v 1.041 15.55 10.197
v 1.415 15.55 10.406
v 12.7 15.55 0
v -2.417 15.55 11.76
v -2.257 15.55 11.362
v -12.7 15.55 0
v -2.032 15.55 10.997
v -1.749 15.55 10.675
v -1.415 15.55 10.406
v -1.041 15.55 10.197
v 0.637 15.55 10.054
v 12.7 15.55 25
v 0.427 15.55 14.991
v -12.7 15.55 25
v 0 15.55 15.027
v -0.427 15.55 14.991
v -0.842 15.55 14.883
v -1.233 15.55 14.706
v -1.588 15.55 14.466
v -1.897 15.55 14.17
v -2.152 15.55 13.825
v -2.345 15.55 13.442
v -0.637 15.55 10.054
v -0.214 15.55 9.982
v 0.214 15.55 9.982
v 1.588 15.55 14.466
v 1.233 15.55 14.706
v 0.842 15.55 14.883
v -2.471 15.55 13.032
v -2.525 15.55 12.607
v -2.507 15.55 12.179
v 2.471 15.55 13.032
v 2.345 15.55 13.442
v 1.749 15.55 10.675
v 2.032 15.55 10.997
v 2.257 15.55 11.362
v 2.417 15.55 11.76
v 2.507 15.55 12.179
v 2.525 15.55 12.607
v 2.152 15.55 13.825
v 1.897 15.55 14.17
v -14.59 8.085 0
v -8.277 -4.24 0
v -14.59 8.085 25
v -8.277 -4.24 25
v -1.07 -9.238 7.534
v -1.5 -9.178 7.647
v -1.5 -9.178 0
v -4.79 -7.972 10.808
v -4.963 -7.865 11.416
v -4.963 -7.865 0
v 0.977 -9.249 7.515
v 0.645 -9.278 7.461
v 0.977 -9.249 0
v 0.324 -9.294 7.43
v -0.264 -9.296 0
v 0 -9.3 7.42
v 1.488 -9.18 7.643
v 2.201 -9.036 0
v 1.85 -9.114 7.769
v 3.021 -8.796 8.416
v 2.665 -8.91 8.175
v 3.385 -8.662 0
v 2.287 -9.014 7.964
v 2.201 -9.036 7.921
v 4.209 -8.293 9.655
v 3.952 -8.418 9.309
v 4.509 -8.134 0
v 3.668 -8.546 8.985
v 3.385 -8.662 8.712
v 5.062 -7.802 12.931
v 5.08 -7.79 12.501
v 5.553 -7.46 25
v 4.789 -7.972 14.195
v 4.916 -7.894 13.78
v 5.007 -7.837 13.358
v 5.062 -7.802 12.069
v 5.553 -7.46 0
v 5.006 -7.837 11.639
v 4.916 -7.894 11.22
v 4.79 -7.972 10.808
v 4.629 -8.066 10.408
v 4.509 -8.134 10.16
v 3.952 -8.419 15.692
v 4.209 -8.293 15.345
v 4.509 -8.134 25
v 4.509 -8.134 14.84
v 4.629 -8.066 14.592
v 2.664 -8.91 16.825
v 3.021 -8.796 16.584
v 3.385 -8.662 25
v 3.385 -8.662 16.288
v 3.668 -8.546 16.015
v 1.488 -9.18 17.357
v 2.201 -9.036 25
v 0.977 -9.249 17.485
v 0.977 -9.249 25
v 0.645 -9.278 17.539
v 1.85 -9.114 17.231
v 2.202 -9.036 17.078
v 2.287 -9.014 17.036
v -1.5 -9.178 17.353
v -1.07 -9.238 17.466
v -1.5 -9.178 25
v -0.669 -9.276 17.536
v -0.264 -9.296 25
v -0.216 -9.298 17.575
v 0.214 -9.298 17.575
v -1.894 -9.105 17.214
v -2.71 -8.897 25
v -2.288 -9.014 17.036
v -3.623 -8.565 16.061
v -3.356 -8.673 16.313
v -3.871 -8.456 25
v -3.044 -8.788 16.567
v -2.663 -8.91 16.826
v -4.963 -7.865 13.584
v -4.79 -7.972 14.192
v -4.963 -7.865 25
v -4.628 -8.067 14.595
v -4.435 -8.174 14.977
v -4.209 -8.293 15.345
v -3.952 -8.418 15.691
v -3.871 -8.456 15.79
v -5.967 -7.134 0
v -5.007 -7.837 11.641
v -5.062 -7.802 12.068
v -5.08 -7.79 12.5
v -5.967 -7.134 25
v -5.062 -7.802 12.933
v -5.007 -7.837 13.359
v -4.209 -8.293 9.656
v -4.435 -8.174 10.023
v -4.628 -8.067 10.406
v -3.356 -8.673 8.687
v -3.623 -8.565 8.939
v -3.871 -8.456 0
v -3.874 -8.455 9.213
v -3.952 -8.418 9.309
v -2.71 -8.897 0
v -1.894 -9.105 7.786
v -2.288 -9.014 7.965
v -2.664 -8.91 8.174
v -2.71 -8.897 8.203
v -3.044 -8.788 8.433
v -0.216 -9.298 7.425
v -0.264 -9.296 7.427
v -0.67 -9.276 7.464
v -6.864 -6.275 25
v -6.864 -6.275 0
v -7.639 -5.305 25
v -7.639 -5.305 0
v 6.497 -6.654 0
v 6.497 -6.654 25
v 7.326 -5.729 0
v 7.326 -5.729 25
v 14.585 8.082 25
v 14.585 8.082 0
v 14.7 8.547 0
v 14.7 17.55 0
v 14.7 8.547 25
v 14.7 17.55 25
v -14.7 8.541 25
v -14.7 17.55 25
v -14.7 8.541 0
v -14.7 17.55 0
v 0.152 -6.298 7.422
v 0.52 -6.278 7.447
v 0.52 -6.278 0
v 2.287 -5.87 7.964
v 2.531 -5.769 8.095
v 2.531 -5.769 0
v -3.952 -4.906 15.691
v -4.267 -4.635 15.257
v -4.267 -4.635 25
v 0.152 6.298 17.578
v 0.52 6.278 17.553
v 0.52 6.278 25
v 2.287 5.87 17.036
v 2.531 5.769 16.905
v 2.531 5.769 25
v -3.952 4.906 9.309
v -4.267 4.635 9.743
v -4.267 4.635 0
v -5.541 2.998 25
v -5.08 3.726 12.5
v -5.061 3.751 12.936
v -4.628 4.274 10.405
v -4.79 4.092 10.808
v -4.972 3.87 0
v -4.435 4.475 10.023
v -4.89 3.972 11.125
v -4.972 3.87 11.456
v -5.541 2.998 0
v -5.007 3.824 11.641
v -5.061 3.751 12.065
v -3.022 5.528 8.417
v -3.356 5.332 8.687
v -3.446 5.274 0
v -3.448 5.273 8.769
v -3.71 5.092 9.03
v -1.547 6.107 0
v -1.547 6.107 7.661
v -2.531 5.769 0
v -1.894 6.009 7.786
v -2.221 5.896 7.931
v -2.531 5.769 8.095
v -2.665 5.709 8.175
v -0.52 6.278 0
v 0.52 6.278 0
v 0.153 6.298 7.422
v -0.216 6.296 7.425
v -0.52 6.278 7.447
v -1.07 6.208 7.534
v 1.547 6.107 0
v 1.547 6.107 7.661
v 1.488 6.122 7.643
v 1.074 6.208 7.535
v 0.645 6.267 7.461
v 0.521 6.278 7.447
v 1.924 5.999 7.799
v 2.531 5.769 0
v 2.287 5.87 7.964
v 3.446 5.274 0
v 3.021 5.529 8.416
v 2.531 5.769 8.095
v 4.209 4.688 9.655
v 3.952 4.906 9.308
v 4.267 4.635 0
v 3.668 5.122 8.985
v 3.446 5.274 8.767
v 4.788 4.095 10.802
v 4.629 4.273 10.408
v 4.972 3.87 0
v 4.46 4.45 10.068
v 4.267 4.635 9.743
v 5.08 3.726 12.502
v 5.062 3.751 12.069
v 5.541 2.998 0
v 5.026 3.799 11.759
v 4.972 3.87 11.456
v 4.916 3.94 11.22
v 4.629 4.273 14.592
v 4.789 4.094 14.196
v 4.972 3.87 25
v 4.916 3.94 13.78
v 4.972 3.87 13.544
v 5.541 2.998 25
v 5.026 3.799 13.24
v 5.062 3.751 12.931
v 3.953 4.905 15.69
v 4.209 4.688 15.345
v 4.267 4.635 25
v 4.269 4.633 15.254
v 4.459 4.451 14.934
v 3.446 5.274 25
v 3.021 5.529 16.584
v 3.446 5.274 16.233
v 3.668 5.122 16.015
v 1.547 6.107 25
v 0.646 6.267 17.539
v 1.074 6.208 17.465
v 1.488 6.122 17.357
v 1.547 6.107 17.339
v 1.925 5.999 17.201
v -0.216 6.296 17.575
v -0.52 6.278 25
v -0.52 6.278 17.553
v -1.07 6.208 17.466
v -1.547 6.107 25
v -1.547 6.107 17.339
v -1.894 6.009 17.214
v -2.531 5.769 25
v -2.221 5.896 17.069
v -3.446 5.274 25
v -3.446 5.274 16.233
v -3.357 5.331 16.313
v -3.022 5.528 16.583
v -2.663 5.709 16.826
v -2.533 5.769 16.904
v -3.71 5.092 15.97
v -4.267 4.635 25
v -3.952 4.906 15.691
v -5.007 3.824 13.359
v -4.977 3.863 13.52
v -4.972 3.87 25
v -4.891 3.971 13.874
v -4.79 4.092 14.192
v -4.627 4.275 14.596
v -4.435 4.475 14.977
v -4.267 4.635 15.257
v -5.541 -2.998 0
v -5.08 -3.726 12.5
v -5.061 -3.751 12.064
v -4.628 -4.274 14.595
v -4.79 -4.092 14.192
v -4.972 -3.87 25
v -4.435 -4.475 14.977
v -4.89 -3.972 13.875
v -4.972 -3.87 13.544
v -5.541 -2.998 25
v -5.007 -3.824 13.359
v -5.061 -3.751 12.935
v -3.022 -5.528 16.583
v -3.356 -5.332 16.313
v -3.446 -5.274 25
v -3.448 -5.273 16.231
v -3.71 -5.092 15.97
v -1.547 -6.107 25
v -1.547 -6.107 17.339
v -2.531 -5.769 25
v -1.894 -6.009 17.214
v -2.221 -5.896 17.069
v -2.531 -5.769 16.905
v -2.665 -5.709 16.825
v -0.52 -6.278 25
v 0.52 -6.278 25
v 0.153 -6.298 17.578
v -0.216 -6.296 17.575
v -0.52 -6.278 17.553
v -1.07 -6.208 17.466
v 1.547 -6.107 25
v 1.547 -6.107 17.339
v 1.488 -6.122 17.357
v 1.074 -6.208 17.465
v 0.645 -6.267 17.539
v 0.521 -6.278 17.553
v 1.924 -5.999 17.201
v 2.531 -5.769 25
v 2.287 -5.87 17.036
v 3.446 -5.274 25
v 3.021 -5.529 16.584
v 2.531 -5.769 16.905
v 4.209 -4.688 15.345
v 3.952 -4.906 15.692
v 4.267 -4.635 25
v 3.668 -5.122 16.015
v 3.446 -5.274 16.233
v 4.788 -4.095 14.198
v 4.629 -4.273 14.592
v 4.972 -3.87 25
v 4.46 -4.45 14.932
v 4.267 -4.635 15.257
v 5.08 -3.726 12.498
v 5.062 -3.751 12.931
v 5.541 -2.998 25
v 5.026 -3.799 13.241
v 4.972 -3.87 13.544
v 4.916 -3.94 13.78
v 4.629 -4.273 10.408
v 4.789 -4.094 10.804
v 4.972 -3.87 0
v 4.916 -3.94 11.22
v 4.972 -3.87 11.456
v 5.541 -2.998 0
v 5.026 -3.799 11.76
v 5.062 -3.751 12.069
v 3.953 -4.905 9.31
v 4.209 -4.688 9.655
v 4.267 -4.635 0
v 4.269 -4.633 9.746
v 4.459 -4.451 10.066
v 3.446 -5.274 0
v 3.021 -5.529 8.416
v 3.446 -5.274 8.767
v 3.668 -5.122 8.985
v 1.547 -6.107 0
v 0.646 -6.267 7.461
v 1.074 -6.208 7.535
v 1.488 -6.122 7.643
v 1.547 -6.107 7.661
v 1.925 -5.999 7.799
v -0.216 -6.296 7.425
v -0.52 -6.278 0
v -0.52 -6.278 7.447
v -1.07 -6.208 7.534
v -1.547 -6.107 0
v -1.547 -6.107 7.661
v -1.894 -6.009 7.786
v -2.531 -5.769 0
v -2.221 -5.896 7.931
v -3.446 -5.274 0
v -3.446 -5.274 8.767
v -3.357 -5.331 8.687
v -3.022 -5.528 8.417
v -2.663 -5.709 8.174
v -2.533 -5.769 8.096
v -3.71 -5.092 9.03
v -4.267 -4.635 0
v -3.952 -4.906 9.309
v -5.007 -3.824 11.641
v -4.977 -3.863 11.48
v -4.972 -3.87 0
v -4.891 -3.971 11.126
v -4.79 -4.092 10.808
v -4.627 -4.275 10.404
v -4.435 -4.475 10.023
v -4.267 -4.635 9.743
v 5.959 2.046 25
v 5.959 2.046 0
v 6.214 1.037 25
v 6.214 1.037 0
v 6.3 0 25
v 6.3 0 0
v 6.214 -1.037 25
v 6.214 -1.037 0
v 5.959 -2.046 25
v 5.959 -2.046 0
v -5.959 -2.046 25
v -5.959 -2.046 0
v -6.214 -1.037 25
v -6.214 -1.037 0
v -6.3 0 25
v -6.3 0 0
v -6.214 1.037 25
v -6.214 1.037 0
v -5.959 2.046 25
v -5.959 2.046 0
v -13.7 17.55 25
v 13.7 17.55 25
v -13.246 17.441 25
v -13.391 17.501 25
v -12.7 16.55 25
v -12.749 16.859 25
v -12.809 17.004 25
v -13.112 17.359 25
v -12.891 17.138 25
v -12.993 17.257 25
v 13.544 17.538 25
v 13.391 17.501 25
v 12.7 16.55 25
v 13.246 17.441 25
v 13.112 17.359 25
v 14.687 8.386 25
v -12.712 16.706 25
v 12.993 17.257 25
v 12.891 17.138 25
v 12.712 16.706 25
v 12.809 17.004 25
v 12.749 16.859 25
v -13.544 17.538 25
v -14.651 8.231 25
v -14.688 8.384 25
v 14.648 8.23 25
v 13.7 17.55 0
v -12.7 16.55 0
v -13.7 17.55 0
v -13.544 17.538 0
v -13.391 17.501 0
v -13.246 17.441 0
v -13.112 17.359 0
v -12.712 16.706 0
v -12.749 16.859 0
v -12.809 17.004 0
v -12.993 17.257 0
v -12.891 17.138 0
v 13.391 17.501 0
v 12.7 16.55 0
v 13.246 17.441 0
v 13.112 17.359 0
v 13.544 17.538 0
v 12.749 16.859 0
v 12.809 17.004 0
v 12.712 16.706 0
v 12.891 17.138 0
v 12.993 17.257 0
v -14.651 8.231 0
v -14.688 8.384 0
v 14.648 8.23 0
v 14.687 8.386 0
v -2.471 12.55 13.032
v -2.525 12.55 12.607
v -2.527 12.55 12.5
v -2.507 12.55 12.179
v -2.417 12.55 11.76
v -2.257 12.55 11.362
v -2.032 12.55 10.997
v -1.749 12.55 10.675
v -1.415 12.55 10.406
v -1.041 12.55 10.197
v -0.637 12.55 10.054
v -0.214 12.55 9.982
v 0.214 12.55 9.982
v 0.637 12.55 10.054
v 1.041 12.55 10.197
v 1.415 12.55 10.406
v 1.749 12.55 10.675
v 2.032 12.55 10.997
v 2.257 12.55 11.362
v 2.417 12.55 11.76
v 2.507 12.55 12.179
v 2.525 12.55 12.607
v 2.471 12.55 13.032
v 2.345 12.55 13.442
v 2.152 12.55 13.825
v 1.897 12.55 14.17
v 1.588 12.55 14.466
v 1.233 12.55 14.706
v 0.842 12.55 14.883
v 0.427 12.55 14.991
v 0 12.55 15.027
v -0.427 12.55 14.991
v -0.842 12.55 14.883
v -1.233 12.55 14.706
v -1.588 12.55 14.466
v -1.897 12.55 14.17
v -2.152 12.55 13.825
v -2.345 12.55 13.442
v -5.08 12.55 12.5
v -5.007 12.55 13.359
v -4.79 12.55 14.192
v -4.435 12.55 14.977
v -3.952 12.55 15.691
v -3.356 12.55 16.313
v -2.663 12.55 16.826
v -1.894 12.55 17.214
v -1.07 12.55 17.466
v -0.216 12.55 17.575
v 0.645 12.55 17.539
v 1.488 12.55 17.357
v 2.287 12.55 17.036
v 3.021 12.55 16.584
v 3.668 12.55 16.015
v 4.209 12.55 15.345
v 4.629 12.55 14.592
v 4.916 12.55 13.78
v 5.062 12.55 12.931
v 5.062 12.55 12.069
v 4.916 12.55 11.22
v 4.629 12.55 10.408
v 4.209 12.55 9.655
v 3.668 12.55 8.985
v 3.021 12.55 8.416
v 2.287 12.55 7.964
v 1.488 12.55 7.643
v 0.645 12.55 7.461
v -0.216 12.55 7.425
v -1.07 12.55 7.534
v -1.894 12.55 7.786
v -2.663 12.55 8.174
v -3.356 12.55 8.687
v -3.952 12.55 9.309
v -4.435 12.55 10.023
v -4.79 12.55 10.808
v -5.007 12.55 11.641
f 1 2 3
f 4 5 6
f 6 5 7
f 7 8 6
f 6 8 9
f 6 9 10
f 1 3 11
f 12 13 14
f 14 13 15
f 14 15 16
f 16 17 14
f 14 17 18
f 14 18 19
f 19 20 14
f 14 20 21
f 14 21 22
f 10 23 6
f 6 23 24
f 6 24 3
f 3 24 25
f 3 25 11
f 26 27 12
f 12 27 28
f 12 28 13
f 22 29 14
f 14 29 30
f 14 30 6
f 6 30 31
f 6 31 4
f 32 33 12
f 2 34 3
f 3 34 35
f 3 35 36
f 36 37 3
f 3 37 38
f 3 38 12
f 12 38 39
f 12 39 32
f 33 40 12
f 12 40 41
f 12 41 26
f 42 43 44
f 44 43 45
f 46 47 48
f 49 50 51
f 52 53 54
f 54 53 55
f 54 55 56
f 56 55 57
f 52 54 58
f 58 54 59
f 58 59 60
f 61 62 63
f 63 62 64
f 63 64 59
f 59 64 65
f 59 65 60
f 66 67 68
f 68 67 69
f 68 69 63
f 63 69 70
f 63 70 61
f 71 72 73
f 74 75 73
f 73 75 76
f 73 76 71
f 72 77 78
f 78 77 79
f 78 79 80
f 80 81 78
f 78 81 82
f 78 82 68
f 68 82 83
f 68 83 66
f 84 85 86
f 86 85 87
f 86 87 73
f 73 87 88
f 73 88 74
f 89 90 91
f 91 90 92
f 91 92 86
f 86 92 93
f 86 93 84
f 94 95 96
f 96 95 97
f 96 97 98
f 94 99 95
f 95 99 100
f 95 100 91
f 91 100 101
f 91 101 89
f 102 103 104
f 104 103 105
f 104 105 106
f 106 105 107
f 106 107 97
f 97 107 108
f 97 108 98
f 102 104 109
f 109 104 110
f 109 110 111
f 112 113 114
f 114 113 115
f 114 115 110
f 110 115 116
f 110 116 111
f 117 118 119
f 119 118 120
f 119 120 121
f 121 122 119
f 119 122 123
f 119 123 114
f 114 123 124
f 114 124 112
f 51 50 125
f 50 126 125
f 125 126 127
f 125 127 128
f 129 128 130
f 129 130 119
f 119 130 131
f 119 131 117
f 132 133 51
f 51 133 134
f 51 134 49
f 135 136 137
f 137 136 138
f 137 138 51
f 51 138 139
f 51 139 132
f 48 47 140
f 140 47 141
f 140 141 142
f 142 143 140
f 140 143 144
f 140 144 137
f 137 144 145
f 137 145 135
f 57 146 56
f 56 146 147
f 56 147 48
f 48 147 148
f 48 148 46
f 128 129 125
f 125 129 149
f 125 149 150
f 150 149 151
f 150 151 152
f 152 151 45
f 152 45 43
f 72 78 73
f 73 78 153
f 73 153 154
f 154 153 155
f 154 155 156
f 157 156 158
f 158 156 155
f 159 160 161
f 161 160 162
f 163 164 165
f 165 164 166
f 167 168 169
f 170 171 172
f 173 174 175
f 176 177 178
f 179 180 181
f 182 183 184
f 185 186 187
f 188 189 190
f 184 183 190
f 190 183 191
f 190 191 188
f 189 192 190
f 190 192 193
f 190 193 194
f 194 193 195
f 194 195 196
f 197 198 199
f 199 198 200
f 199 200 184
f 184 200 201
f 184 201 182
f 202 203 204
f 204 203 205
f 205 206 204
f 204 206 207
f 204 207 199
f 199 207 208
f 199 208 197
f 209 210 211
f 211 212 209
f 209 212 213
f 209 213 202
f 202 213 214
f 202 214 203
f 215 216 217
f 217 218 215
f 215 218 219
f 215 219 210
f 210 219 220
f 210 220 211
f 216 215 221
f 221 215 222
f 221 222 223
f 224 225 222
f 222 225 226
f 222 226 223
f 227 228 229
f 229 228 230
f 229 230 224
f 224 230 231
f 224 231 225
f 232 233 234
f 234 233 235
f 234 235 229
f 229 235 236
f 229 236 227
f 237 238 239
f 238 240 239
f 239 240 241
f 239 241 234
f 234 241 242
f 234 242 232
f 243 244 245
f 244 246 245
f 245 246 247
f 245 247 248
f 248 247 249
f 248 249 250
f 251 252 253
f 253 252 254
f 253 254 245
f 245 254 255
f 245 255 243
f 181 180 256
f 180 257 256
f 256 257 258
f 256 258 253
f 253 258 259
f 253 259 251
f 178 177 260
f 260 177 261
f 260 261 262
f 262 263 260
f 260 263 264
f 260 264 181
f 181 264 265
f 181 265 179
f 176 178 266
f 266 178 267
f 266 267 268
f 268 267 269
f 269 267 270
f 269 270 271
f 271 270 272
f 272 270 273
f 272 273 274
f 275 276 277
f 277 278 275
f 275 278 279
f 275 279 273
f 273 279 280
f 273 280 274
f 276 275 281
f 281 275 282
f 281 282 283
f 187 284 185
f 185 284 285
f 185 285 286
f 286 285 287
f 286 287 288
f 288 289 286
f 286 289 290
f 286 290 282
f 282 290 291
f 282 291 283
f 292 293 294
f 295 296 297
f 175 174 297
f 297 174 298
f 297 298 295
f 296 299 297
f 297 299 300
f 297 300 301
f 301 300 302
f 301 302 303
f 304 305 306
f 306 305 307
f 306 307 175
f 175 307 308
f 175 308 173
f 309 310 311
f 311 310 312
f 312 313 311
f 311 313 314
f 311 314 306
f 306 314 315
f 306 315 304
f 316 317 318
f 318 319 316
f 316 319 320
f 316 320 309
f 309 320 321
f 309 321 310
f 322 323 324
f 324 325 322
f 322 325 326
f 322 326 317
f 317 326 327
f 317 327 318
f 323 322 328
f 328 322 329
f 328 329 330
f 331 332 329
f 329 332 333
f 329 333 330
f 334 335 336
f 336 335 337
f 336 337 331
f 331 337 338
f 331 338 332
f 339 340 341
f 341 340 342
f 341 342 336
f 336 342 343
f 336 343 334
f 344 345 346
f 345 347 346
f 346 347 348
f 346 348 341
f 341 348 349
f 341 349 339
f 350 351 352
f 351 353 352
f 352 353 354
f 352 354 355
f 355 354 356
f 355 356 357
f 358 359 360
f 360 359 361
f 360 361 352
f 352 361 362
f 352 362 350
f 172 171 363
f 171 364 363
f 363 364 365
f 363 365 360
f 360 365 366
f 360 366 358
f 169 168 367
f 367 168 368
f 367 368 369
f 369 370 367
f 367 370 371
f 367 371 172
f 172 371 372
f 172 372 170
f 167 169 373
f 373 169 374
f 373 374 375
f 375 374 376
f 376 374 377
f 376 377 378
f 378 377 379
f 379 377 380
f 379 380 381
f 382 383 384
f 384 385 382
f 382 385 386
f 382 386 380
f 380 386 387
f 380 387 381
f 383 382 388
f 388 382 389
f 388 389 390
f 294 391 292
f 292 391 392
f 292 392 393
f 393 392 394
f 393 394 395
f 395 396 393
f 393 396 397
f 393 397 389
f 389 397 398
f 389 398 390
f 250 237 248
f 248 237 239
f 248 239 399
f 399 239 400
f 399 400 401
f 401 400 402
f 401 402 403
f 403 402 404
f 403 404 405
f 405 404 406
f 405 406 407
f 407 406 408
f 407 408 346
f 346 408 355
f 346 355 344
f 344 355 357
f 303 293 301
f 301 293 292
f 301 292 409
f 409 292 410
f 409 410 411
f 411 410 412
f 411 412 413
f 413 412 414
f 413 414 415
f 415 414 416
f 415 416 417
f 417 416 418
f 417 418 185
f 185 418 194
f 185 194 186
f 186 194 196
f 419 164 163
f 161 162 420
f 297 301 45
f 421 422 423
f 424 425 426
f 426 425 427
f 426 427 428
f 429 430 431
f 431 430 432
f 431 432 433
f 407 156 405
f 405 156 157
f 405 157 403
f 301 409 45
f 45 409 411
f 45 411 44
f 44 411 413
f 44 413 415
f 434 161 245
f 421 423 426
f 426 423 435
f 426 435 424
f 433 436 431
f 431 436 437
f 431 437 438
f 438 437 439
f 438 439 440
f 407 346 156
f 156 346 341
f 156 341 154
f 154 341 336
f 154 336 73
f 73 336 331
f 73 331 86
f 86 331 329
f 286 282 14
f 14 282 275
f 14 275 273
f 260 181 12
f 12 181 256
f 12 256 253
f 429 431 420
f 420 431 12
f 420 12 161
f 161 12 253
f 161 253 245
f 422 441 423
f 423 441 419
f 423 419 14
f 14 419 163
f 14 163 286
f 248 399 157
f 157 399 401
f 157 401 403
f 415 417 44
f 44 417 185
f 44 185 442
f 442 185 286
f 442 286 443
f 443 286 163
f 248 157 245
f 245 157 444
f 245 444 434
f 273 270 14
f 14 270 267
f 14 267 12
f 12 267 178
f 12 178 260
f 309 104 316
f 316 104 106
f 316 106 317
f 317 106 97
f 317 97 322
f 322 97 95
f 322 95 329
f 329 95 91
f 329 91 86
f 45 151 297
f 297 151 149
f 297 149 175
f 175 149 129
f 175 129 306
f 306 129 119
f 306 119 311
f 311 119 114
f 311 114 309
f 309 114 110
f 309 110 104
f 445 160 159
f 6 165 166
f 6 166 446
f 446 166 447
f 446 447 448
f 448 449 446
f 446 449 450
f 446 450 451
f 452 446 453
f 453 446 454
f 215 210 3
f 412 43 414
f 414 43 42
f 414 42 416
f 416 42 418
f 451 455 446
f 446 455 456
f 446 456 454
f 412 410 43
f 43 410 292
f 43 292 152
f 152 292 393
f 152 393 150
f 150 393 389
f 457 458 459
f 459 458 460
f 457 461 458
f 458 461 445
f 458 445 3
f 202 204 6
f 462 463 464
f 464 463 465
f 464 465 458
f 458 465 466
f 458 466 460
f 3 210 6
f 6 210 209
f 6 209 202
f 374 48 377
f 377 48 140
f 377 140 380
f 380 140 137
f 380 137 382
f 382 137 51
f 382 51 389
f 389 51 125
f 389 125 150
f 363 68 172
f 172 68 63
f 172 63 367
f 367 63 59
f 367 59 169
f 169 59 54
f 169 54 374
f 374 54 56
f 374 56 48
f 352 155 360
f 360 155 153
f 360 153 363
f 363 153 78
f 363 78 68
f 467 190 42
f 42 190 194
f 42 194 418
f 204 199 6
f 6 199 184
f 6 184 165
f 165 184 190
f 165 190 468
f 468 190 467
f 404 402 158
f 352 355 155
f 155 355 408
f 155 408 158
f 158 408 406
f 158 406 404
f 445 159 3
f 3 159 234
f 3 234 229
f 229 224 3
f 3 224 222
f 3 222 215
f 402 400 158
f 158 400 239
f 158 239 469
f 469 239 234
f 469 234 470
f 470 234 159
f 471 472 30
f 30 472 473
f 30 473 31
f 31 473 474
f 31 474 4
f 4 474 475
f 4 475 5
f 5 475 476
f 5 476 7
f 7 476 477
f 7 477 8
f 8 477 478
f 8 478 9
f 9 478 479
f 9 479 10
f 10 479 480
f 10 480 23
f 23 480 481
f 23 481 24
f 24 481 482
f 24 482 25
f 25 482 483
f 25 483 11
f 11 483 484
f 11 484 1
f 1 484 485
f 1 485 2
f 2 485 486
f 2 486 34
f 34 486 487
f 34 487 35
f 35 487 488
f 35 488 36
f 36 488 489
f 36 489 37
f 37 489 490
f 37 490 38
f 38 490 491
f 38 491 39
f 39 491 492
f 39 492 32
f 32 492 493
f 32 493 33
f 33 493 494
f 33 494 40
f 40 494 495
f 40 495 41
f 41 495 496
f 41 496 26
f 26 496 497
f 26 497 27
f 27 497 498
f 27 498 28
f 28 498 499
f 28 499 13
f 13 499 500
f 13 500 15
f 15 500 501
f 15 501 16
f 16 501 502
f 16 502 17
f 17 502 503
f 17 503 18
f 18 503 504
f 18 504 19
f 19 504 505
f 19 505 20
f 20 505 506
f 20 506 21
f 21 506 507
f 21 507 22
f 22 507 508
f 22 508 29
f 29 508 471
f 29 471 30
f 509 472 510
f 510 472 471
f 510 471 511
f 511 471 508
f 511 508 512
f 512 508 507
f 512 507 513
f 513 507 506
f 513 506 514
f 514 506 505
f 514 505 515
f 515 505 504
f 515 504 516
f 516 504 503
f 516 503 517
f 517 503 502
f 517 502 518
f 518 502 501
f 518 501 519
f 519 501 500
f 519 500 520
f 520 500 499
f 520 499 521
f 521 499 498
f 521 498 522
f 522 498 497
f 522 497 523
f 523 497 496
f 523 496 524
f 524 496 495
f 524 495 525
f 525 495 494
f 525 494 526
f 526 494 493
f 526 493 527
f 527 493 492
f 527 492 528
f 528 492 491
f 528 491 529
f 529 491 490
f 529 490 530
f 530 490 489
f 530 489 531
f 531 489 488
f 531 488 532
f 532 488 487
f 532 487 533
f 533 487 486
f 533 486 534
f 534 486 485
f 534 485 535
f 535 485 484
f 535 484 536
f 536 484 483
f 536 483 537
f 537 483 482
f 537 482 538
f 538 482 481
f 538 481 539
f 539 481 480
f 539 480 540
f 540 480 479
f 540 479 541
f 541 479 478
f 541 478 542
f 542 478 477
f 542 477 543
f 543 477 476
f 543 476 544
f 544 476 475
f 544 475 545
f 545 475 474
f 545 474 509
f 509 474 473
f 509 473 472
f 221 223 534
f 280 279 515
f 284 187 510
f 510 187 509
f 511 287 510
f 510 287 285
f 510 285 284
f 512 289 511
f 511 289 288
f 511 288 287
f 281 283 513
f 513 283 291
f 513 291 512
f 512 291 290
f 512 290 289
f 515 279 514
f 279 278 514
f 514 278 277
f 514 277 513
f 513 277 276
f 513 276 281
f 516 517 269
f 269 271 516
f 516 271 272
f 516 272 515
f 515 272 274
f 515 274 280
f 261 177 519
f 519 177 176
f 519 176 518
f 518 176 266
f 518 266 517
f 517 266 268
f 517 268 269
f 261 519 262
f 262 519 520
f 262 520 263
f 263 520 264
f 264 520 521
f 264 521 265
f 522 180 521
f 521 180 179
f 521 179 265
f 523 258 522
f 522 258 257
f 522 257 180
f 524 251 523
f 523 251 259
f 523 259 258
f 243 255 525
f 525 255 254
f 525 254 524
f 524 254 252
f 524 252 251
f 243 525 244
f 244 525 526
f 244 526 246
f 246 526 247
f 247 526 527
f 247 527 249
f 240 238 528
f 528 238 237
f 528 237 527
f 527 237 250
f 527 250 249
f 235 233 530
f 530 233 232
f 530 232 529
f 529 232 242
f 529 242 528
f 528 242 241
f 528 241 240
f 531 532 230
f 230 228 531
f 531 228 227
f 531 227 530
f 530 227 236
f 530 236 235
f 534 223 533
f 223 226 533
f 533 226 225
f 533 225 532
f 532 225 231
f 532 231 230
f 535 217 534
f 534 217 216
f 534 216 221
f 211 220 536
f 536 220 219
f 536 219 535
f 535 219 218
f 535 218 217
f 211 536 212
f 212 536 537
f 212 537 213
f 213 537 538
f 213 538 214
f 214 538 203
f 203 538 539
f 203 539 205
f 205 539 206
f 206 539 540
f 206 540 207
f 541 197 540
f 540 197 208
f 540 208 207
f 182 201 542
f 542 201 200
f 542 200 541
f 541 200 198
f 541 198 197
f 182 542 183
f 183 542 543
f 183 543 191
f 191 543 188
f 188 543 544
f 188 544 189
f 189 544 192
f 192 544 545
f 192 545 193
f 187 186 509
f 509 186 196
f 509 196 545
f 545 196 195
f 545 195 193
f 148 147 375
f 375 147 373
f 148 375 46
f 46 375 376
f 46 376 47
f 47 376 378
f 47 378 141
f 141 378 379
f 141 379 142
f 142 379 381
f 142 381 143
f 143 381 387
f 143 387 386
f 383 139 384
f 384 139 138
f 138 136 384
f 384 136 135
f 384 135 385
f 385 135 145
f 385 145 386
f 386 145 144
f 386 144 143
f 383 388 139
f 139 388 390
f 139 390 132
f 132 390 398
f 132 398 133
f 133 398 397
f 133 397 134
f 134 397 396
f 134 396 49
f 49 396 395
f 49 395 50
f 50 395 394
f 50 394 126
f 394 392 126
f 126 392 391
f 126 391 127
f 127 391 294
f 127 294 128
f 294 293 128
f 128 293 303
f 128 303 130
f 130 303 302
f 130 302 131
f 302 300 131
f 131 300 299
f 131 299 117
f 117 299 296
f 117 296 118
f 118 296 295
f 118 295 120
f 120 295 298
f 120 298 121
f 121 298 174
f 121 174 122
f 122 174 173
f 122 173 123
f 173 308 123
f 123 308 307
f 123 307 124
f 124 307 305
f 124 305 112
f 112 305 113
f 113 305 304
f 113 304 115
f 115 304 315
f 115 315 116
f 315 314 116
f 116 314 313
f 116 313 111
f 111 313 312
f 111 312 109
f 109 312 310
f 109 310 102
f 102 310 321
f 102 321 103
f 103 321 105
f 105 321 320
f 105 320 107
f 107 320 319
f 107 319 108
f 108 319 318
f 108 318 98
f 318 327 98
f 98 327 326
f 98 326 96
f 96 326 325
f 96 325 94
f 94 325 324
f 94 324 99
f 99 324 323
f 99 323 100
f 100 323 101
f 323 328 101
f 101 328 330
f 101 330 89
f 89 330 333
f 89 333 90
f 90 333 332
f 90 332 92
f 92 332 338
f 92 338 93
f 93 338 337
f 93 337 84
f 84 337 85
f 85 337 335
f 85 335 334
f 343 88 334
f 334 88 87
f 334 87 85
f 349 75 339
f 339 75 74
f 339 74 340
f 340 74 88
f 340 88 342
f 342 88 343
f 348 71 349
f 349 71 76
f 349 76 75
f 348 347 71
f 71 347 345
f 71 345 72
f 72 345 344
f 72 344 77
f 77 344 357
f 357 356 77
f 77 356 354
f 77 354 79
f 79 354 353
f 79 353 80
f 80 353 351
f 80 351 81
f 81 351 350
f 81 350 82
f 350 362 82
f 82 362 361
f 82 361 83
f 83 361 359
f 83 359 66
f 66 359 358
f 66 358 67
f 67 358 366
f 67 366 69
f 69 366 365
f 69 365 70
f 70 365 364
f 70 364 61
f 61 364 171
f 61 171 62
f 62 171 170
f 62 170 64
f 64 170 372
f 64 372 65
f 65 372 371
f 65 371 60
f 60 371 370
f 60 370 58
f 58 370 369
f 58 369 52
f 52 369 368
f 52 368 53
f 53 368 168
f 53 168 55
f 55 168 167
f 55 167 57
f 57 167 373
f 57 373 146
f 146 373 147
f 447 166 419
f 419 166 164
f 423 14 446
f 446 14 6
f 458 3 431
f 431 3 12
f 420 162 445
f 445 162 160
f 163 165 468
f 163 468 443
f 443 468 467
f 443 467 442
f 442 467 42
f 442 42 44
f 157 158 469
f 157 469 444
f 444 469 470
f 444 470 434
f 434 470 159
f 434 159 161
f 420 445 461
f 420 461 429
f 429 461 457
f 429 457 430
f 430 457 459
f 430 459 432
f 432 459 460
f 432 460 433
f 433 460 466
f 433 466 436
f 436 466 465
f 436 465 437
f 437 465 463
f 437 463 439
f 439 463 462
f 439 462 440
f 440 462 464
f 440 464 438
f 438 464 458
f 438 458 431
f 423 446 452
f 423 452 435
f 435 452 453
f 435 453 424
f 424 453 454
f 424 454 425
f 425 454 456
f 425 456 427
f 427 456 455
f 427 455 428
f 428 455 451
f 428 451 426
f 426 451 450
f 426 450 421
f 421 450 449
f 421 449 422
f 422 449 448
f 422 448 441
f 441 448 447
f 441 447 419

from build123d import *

# Parameters (mm, degrees)
SKETCH1_R                  = 6.3
BOSS_EXTRUDE1_DEPTH        = 25
F_8_0_199_DIAMETER_HOLE1_D = 5.0546
CUT_EXTRUDE2_START         = -3
SKETCH5_R                  = 5.08
CUT_EXTRUDE2_DEPTH         = 36.191785898
SKETCH6_W                  = 2
SKETCH6_H                  = 2
BOSS_EXTRUDE2_DEPTH        = 25
FILLET1_R                  = 1


with BuildPart() as part:
    # Sketch1 → Boss-Extrude1 (new body)
    with BuildSketch(Plane.XY):
        with BuildLine():
            Line((14.7, 8.3), (14.7, 15.55))
            Line((14.7, 15.55), (-14.7, 15.55))
            Line((-14.7, 15.55), (-14.7, 8.3))
            Line((-14.7, 8.3), (-8.277443092, -4.239567886))
            ThreePointArc((-8.277443092, -4.239567886), (-0.883815497, -9.25790852), (7.325770018, -5.729144233))
            Line((7.325770018, -5.729144233), (14.7, 8.3))
        make_face()
        Circle(SKETCH1_R, mode=Mode.SUBTRACT)
    extrude(amount=BOSS_EXTRUDE1_DEPTH)

    # #8 (0.199) Diameter Hole1 (through all)
    with Locations(Plane(origin=(0, 15.55, 0), x_dir=(1, 0, 0), z_dir=(0, 1, 0))):
        with Locations((0, -12.5)):
            Hole(F_8_0_199_DIAMETER_HOLE1_D / 2)

    # Sketch5 → Cut-Extrude2 (cut, through all)
    with BuildSketch(Plane(origin=(0, 15.55, 0), x_dir=(1, 0, 0), z_dir=(0, 1, 0)).offset(CUT_EXTRUDE2_START)):
        with Locations(Location((0, -12.5, 0), (0, 0, 180))):
            Circle(SKETCH5_R)
    extrude(amount=-CUT_EXTRUDE2_DEPTH, mode=Mode.SUBTRACT)

    # Sketch6 → Boss-Extrude2 (add)
    with BuildSketch(Plane(origin=(0, 0, 0), x_dir=(-1, 0, 0), z_dir=(0, 0, -1))):
        with Locations((13.7, 16.55)):
            Rectangle(SKETCH6_W, SKETCH6_H)
        with Locations((-13.7, 16.55)):
            Rectangle(SKETCH6_W, SKETCH6_H)
    extrude(amount=-BOSS_EXTRUDE2_DEPTH)

    # Fillet1
    fillet1_edges = [part.edges().sort_by_distance(p)[0] for p in [
        (-14.7, 8.3, 12.5),
        (14.7, 8.3, 12.5),
        (-12.7, 17.55, 12.5),
        (12.7, 17.55, 12.5),
    ]]
    fillet(fillet1_edges, radius=FILLET1_R)


solid = part.part
